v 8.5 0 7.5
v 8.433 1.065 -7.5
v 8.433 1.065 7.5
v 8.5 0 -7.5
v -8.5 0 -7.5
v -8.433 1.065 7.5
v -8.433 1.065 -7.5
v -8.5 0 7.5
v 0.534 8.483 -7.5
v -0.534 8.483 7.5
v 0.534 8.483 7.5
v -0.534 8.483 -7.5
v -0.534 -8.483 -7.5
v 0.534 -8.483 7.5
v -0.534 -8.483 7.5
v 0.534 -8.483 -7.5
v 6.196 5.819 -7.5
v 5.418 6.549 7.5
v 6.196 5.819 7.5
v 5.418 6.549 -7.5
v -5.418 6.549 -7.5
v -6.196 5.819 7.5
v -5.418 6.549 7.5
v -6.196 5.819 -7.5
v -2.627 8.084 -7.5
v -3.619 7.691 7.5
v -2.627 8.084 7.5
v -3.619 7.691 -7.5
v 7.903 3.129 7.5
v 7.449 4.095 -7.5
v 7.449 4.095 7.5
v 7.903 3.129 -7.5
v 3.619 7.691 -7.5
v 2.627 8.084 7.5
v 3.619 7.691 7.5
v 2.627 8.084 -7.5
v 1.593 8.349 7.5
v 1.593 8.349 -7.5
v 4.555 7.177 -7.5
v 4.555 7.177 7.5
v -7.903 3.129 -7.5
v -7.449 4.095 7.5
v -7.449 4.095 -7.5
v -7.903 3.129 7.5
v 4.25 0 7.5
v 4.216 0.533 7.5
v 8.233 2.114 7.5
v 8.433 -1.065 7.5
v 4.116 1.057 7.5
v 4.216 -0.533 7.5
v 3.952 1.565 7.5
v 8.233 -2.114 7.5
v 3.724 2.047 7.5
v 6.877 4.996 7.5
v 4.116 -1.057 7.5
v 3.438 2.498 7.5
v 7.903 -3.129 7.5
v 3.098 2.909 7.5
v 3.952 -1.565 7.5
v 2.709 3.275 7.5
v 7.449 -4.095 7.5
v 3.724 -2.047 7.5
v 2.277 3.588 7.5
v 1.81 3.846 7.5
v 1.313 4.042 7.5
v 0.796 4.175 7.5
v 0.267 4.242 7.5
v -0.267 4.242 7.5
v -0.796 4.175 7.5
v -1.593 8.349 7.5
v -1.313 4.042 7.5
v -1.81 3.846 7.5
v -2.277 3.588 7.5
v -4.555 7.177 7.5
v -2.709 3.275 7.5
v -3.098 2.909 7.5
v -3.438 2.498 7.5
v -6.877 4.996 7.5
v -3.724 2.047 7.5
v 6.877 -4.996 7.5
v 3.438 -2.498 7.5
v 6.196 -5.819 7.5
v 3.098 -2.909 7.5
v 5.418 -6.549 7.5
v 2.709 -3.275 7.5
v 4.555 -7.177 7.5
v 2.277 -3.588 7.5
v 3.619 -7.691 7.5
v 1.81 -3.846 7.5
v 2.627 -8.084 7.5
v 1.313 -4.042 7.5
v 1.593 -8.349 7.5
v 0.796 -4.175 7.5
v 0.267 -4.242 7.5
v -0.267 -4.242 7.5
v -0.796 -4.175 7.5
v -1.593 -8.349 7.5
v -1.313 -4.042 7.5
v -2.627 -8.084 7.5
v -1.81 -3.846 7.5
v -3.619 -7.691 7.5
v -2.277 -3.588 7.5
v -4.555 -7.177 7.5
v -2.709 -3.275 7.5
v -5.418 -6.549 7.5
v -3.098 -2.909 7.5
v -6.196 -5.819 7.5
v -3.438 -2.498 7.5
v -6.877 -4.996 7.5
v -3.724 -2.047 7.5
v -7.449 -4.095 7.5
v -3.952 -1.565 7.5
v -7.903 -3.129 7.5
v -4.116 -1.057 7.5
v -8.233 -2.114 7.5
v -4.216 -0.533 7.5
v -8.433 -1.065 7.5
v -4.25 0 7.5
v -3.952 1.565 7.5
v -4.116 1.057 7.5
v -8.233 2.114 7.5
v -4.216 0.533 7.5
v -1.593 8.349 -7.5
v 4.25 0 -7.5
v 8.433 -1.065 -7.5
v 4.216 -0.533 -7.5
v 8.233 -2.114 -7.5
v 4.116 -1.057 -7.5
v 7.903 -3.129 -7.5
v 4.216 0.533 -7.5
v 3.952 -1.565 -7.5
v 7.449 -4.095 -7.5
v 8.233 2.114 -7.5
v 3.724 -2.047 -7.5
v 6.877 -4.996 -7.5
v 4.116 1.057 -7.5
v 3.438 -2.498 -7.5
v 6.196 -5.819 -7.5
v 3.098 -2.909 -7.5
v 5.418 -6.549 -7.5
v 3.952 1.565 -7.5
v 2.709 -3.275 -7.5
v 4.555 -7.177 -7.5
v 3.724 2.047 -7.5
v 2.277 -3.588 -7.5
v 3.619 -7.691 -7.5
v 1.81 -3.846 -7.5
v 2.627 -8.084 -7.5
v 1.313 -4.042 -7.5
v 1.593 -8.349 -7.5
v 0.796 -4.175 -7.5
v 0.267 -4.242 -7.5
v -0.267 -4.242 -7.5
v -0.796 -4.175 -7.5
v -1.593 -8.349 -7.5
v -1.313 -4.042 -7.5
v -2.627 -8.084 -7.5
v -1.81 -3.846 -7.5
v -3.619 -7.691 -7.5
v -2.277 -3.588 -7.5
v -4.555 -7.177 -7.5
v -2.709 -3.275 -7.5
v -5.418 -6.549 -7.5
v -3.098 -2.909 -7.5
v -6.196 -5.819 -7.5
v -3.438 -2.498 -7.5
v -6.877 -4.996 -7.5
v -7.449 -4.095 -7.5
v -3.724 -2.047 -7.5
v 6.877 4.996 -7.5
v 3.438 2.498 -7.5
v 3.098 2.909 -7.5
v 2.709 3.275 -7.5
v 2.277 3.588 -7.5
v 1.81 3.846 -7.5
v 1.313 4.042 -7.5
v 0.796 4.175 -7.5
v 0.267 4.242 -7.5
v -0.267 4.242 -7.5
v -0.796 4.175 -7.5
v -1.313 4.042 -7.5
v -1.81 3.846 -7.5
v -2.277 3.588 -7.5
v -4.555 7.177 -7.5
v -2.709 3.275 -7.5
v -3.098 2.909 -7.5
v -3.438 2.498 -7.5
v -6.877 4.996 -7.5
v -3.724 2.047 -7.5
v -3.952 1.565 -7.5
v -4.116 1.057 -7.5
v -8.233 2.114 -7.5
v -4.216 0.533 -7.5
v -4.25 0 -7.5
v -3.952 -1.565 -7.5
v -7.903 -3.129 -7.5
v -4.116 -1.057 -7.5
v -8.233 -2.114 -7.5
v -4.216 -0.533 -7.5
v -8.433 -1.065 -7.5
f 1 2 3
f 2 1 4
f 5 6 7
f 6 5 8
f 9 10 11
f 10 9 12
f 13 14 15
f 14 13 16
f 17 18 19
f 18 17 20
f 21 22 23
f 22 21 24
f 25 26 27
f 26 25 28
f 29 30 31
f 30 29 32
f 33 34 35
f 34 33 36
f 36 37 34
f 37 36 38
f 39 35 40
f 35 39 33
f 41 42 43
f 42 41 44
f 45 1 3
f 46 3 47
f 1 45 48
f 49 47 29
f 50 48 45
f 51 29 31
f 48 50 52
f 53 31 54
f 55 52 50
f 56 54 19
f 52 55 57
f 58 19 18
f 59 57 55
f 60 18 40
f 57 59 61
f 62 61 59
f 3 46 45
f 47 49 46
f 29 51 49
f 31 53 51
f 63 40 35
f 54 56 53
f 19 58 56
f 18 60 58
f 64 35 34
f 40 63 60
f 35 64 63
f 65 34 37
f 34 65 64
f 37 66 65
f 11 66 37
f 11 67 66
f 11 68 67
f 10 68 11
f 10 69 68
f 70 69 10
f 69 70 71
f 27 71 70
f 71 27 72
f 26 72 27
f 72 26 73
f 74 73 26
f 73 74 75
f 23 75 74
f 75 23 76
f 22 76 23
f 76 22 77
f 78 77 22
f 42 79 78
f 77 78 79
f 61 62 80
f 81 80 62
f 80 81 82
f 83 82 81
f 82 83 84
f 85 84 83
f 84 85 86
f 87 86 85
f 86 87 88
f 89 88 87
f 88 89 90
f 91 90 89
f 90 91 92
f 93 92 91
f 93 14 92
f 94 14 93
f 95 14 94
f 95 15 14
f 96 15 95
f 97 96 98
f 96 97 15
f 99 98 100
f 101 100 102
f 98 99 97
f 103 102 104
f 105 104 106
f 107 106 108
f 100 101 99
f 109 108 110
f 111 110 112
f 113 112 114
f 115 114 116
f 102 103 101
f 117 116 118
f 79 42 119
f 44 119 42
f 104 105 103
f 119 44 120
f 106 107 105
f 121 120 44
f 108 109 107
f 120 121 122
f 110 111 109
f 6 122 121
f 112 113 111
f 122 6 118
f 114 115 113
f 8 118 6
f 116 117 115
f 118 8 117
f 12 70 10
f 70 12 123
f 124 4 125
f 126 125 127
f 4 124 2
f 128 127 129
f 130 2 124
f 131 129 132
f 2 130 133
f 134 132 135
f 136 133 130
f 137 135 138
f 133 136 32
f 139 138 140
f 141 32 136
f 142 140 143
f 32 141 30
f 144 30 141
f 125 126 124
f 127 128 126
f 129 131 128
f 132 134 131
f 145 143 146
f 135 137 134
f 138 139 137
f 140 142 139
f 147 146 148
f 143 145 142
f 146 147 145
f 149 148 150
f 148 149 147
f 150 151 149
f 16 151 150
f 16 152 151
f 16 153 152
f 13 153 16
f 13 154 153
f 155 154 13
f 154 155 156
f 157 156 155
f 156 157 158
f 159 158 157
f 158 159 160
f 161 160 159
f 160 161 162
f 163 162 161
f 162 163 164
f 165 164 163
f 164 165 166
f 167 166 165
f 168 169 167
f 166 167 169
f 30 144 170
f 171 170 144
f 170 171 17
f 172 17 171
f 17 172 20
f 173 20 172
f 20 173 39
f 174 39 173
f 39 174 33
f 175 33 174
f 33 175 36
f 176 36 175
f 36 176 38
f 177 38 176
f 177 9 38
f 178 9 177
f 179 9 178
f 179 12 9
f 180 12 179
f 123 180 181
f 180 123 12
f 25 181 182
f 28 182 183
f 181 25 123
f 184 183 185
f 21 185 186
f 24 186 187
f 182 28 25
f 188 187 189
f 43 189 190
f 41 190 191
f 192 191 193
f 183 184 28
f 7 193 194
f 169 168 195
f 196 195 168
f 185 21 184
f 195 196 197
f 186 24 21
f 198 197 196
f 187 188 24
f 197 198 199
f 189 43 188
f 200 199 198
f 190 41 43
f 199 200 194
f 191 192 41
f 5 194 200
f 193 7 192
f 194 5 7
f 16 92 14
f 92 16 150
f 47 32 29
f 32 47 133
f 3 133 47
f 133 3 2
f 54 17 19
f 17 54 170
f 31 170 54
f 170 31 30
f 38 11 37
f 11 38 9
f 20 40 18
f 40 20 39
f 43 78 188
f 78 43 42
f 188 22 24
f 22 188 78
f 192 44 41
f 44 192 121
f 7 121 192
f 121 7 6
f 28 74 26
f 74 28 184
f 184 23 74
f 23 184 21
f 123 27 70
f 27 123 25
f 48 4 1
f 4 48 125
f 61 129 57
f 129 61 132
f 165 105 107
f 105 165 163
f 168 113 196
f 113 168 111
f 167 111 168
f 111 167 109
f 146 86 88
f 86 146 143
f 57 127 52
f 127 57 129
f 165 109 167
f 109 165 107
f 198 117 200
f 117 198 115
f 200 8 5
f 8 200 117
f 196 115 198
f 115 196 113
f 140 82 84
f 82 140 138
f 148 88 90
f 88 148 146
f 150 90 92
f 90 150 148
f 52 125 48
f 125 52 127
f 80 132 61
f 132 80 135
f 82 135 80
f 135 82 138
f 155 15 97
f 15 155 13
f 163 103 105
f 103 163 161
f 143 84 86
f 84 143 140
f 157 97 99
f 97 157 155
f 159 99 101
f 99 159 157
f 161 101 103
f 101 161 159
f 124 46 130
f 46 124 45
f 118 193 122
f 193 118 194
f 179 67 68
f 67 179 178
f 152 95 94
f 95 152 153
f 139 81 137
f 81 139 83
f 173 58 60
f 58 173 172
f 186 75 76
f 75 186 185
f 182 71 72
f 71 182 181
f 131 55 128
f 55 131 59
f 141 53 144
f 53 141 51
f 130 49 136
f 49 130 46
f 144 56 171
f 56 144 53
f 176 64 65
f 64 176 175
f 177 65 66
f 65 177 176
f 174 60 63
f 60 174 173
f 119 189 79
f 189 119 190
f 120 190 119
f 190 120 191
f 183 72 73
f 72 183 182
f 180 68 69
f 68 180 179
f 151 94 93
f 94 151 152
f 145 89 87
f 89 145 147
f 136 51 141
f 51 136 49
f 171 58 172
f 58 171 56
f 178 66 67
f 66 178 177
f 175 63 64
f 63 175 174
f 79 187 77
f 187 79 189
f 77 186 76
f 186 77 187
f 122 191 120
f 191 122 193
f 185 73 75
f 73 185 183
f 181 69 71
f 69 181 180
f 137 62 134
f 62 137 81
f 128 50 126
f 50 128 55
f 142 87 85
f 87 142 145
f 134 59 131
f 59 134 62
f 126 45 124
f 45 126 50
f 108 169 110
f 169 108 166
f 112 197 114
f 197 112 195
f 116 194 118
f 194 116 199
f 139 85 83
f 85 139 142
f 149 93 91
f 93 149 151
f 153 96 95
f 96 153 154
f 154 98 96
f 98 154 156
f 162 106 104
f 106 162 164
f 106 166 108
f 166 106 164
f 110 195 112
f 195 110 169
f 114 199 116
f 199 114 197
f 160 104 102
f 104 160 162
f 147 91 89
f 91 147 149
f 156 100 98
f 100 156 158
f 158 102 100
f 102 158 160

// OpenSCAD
$fn = 50;


difference() {
	union() {
		translate(v = [0, 0, -7.5000000000]) {
			cylinder(h = 15, r = 8.5000000000);
		}
	}
	union() {
		translate(v = [0, 0, -100.0000000000]) {
			cylinder(h = 200, r = 4.2500000000);
		}
	}
}
